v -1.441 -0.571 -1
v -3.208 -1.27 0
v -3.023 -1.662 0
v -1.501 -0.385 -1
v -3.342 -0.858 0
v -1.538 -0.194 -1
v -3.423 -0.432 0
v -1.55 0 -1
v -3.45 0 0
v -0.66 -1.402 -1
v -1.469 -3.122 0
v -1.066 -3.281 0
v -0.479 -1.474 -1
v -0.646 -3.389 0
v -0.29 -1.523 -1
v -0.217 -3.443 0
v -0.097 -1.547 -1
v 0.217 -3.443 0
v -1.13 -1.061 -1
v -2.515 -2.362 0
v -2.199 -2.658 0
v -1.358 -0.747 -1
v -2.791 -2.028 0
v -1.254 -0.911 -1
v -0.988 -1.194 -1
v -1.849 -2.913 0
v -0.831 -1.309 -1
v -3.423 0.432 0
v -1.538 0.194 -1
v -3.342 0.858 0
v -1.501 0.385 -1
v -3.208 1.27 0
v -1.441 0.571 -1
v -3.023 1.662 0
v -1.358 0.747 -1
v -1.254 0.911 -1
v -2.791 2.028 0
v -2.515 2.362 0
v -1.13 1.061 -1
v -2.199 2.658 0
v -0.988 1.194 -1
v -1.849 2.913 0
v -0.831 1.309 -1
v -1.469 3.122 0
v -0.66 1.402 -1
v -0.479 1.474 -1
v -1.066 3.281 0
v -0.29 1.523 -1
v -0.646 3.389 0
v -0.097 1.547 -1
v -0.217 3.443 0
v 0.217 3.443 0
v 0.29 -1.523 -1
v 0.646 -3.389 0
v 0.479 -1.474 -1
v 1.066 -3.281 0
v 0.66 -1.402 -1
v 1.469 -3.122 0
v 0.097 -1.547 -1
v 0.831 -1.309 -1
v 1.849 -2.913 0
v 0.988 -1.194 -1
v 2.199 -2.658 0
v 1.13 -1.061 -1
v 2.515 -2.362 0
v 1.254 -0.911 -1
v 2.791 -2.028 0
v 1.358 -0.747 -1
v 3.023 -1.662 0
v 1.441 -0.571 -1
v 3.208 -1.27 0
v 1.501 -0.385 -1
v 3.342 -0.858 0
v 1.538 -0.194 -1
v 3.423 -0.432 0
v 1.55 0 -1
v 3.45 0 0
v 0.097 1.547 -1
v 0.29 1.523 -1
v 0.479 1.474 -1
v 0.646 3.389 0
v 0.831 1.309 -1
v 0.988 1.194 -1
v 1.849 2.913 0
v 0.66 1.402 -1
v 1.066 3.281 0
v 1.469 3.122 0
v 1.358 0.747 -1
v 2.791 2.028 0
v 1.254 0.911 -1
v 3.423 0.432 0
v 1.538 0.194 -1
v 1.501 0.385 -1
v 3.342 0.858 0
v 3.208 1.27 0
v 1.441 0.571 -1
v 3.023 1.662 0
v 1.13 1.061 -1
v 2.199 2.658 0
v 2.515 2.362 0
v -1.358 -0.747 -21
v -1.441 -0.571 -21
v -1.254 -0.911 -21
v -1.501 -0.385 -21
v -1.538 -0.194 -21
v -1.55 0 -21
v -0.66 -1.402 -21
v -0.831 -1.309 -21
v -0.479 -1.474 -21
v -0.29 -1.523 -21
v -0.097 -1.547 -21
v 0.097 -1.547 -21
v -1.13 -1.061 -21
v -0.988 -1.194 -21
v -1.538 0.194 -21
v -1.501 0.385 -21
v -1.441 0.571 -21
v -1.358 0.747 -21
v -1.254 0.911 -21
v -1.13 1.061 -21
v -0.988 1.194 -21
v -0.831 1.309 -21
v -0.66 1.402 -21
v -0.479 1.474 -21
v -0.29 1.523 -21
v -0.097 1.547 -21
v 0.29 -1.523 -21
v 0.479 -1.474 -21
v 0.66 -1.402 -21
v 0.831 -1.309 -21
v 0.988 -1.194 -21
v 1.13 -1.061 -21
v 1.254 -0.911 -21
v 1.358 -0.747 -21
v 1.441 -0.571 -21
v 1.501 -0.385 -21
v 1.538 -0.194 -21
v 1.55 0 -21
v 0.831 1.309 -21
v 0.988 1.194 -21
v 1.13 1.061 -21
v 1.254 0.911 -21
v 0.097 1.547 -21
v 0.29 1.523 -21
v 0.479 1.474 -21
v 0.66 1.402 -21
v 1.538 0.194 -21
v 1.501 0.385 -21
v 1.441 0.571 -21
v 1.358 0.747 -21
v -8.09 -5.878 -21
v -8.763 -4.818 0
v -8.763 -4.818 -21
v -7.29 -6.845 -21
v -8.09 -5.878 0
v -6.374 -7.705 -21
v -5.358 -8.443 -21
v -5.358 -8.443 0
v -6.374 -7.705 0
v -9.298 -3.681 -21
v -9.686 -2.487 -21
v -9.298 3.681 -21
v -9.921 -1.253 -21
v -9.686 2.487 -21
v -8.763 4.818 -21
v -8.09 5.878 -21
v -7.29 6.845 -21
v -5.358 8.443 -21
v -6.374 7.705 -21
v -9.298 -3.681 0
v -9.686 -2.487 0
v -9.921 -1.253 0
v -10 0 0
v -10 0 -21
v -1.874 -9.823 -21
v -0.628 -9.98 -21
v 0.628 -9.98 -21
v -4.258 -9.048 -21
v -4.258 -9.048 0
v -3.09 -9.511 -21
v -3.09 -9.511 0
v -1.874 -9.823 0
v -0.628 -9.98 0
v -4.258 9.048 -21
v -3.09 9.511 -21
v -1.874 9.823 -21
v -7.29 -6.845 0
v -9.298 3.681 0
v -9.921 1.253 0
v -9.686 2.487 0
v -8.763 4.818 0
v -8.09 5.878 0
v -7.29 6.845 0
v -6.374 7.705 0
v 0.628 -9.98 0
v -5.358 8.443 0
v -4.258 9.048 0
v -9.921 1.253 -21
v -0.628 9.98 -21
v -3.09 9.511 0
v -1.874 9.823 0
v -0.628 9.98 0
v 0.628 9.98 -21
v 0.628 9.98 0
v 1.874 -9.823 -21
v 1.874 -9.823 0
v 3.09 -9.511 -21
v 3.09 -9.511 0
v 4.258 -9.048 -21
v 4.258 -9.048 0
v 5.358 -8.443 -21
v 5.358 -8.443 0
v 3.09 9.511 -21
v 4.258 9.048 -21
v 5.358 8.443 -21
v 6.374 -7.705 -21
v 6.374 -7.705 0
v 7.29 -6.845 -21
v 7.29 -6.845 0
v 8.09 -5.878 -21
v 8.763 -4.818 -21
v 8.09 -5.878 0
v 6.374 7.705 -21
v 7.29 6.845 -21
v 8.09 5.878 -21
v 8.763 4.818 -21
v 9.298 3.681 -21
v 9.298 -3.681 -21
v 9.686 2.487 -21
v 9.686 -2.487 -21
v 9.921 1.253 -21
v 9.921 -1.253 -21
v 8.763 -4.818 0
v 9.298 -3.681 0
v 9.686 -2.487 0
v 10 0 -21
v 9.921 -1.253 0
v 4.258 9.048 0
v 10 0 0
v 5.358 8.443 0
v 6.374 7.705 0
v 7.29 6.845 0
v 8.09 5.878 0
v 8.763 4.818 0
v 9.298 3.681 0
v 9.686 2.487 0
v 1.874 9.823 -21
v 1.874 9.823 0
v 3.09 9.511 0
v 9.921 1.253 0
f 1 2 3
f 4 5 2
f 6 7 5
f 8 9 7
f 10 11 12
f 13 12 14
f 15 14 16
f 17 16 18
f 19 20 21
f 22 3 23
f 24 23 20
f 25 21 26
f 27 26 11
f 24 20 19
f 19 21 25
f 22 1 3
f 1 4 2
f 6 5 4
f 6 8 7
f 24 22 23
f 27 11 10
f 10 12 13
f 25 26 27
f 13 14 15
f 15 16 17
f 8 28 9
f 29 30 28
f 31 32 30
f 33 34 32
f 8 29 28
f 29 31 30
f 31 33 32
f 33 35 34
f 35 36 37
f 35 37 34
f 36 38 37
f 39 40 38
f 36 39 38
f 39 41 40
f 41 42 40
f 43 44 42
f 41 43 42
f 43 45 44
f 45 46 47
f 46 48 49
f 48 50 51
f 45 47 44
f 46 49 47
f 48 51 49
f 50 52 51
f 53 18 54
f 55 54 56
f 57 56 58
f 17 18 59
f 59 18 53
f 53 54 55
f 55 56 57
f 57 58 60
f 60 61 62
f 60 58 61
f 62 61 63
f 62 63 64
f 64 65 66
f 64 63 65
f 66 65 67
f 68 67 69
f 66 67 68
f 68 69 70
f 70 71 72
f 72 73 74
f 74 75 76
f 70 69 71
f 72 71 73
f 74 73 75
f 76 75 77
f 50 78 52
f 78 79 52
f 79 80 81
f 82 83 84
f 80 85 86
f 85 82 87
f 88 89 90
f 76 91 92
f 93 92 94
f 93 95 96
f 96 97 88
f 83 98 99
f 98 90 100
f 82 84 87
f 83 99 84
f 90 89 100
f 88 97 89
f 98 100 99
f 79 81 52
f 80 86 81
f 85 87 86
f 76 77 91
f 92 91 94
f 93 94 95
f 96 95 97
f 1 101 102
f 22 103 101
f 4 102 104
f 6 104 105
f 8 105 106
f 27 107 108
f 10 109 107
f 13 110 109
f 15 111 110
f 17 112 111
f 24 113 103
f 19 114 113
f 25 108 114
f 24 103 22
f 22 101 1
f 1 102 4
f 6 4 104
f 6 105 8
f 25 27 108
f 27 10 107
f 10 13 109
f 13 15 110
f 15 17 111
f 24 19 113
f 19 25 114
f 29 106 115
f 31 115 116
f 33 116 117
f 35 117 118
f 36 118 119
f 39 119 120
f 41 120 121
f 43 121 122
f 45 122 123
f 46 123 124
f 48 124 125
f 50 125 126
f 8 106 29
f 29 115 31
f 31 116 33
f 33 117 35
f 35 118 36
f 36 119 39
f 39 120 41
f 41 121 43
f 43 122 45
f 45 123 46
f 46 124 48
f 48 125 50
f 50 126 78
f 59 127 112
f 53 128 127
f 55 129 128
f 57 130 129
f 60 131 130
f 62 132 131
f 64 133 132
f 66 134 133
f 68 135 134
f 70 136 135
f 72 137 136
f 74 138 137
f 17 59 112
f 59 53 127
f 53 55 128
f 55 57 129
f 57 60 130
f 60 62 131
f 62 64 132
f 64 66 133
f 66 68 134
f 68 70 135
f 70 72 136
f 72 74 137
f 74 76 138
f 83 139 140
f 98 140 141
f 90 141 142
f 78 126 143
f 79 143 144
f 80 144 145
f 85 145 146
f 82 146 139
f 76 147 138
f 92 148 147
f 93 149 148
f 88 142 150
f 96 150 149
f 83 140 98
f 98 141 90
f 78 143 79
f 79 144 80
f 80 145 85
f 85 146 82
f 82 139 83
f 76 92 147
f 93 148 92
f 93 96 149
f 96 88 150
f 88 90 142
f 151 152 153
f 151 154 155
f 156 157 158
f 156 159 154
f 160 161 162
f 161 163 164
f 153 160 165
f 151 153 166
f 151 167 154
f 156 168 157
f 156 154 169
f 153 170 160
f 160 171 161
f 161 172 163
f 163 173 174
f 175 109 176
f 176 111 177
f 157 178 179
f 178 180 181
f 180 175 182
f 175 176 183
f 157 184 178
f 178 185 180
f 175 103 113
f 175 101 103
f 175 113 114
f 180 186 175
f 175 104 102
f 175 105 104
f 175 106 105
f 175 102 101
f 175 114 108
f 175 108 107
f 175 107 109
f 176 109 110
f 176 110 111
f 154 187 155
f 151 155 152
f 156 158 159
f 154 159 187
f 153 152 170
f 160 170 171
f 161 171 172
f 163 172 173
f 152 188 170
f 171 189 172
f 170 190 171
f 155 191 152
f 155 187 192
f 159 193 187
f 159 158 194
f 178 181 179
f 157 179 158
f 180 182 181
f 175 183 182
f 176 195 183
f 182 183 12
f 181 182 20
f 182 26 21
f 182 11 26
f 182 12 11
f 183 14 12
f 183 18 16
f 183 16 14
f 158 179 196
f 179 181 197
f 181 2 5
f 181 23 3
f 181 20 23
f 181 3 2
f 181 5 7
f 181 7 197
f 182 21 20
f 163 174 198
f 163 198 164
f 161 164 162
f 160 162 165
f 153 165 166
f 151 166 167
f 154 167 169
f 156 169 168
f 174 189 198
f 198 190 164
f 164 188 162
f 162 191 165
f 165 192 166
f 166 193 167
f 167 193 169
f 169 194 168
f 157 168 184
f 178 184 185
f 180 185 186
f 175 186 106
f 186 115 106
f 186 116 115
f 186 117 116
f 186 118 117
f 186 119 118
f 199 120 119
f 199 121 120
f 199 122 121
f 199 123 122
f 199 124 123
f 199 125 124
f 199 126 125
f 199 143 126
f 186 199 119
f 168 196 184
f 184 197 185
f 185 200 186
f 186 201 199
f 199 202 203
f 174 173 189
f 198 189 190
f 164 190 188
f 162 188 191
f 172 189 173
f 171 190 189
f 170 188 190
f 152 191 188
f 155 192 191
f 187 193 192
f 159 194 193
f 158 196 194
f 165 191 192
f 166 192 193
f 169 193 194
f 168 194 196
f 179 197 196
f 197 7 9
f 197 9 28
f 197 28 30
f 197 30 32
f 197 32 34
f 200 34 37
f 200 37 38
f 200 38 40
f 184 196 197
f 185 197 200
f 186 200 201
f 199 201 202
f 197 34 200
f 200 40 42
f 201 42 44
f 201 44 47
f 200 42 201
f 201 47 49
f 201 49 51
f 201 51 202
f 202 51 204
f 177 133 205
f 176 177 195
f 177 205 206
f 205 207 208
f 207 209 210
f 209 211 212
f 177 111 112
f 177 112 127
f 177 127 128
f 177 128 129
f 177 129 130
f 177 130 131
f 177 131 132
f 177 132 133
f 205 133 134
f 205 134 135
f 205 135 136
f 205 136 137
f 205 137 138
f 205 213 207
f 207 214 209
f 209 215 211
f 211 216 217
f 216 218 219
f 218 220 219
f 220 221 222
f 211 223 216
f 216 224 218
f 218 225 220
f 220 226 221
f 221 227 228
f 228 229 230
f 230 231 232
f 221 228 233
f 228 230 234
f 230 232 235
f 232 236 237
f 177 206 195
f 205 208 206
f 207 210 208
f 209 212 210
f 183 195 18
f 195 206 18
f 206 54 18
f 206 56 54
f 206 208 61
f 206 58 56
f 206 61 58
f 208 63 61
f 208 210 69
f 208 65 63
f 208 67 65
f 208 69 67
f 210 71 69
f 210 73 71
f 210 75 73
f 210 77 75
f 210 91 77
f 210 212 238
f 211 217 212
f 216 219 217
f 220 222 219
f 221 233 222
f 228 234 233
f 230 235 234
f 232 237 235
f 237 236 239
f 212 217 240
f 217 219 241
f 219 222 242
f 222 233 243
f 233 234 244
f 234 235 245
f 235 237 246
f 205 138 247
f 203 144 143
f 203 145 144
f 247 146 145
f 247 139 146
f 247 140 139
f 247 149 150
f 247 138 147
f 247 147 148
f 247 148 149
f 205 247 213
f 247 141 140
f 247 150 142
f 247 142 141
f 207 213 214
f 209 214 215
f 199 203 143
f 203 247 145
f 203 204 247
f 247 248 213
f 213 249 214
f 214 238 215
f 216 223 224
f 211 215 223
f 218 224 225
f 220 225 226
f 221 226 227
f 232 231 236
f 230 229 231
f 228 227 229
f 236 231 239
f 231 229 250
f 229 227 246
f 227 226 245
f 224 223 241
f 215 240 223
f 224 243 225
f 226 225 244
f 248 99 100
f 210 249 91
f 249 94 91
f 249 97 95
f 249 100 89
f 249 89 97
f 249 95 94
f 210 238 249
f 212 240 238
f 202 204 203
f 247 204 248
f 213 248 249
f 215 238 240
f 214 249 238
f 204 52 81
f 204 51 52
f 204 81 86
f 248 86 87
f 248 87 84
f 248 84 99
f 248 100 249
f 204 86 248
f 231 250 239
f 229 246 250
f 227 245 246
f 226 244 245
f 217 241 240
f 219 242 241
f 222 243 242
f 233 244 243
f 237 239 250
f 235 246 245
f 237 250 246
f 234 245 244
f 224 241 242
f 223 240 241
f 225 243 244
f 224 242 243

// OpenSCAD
$fn = 50;

difference() {
	union() {
		translate(v = [0, 0, -21.0]) {
			cylinder(h = 21, r = 10.0);
		}
	}
	union() {
		translate(v = [0, 0, 0]) {
			rotate(a = [0, 0, 0]) {
				difference() {
					union() {
						translate(v = [0, 0, -24.0]) {
							cylinder(h = 24, r = 1.25);
						}
						translate(v = [0, 0, -1.0]) {
							cylinder(h = 1.0, r1 = 1.55, r2 = 3.45);
						}
						translate(v = [0, 0, -24.0]) {
							cylinder(h = 24, r = 1.55);
						}
						translate(v = [0, 0, -24.0]) {
							cylinder(h = 24, r = 1.25);
						}
					}
					union();
				}
			}
		}
	}
}
